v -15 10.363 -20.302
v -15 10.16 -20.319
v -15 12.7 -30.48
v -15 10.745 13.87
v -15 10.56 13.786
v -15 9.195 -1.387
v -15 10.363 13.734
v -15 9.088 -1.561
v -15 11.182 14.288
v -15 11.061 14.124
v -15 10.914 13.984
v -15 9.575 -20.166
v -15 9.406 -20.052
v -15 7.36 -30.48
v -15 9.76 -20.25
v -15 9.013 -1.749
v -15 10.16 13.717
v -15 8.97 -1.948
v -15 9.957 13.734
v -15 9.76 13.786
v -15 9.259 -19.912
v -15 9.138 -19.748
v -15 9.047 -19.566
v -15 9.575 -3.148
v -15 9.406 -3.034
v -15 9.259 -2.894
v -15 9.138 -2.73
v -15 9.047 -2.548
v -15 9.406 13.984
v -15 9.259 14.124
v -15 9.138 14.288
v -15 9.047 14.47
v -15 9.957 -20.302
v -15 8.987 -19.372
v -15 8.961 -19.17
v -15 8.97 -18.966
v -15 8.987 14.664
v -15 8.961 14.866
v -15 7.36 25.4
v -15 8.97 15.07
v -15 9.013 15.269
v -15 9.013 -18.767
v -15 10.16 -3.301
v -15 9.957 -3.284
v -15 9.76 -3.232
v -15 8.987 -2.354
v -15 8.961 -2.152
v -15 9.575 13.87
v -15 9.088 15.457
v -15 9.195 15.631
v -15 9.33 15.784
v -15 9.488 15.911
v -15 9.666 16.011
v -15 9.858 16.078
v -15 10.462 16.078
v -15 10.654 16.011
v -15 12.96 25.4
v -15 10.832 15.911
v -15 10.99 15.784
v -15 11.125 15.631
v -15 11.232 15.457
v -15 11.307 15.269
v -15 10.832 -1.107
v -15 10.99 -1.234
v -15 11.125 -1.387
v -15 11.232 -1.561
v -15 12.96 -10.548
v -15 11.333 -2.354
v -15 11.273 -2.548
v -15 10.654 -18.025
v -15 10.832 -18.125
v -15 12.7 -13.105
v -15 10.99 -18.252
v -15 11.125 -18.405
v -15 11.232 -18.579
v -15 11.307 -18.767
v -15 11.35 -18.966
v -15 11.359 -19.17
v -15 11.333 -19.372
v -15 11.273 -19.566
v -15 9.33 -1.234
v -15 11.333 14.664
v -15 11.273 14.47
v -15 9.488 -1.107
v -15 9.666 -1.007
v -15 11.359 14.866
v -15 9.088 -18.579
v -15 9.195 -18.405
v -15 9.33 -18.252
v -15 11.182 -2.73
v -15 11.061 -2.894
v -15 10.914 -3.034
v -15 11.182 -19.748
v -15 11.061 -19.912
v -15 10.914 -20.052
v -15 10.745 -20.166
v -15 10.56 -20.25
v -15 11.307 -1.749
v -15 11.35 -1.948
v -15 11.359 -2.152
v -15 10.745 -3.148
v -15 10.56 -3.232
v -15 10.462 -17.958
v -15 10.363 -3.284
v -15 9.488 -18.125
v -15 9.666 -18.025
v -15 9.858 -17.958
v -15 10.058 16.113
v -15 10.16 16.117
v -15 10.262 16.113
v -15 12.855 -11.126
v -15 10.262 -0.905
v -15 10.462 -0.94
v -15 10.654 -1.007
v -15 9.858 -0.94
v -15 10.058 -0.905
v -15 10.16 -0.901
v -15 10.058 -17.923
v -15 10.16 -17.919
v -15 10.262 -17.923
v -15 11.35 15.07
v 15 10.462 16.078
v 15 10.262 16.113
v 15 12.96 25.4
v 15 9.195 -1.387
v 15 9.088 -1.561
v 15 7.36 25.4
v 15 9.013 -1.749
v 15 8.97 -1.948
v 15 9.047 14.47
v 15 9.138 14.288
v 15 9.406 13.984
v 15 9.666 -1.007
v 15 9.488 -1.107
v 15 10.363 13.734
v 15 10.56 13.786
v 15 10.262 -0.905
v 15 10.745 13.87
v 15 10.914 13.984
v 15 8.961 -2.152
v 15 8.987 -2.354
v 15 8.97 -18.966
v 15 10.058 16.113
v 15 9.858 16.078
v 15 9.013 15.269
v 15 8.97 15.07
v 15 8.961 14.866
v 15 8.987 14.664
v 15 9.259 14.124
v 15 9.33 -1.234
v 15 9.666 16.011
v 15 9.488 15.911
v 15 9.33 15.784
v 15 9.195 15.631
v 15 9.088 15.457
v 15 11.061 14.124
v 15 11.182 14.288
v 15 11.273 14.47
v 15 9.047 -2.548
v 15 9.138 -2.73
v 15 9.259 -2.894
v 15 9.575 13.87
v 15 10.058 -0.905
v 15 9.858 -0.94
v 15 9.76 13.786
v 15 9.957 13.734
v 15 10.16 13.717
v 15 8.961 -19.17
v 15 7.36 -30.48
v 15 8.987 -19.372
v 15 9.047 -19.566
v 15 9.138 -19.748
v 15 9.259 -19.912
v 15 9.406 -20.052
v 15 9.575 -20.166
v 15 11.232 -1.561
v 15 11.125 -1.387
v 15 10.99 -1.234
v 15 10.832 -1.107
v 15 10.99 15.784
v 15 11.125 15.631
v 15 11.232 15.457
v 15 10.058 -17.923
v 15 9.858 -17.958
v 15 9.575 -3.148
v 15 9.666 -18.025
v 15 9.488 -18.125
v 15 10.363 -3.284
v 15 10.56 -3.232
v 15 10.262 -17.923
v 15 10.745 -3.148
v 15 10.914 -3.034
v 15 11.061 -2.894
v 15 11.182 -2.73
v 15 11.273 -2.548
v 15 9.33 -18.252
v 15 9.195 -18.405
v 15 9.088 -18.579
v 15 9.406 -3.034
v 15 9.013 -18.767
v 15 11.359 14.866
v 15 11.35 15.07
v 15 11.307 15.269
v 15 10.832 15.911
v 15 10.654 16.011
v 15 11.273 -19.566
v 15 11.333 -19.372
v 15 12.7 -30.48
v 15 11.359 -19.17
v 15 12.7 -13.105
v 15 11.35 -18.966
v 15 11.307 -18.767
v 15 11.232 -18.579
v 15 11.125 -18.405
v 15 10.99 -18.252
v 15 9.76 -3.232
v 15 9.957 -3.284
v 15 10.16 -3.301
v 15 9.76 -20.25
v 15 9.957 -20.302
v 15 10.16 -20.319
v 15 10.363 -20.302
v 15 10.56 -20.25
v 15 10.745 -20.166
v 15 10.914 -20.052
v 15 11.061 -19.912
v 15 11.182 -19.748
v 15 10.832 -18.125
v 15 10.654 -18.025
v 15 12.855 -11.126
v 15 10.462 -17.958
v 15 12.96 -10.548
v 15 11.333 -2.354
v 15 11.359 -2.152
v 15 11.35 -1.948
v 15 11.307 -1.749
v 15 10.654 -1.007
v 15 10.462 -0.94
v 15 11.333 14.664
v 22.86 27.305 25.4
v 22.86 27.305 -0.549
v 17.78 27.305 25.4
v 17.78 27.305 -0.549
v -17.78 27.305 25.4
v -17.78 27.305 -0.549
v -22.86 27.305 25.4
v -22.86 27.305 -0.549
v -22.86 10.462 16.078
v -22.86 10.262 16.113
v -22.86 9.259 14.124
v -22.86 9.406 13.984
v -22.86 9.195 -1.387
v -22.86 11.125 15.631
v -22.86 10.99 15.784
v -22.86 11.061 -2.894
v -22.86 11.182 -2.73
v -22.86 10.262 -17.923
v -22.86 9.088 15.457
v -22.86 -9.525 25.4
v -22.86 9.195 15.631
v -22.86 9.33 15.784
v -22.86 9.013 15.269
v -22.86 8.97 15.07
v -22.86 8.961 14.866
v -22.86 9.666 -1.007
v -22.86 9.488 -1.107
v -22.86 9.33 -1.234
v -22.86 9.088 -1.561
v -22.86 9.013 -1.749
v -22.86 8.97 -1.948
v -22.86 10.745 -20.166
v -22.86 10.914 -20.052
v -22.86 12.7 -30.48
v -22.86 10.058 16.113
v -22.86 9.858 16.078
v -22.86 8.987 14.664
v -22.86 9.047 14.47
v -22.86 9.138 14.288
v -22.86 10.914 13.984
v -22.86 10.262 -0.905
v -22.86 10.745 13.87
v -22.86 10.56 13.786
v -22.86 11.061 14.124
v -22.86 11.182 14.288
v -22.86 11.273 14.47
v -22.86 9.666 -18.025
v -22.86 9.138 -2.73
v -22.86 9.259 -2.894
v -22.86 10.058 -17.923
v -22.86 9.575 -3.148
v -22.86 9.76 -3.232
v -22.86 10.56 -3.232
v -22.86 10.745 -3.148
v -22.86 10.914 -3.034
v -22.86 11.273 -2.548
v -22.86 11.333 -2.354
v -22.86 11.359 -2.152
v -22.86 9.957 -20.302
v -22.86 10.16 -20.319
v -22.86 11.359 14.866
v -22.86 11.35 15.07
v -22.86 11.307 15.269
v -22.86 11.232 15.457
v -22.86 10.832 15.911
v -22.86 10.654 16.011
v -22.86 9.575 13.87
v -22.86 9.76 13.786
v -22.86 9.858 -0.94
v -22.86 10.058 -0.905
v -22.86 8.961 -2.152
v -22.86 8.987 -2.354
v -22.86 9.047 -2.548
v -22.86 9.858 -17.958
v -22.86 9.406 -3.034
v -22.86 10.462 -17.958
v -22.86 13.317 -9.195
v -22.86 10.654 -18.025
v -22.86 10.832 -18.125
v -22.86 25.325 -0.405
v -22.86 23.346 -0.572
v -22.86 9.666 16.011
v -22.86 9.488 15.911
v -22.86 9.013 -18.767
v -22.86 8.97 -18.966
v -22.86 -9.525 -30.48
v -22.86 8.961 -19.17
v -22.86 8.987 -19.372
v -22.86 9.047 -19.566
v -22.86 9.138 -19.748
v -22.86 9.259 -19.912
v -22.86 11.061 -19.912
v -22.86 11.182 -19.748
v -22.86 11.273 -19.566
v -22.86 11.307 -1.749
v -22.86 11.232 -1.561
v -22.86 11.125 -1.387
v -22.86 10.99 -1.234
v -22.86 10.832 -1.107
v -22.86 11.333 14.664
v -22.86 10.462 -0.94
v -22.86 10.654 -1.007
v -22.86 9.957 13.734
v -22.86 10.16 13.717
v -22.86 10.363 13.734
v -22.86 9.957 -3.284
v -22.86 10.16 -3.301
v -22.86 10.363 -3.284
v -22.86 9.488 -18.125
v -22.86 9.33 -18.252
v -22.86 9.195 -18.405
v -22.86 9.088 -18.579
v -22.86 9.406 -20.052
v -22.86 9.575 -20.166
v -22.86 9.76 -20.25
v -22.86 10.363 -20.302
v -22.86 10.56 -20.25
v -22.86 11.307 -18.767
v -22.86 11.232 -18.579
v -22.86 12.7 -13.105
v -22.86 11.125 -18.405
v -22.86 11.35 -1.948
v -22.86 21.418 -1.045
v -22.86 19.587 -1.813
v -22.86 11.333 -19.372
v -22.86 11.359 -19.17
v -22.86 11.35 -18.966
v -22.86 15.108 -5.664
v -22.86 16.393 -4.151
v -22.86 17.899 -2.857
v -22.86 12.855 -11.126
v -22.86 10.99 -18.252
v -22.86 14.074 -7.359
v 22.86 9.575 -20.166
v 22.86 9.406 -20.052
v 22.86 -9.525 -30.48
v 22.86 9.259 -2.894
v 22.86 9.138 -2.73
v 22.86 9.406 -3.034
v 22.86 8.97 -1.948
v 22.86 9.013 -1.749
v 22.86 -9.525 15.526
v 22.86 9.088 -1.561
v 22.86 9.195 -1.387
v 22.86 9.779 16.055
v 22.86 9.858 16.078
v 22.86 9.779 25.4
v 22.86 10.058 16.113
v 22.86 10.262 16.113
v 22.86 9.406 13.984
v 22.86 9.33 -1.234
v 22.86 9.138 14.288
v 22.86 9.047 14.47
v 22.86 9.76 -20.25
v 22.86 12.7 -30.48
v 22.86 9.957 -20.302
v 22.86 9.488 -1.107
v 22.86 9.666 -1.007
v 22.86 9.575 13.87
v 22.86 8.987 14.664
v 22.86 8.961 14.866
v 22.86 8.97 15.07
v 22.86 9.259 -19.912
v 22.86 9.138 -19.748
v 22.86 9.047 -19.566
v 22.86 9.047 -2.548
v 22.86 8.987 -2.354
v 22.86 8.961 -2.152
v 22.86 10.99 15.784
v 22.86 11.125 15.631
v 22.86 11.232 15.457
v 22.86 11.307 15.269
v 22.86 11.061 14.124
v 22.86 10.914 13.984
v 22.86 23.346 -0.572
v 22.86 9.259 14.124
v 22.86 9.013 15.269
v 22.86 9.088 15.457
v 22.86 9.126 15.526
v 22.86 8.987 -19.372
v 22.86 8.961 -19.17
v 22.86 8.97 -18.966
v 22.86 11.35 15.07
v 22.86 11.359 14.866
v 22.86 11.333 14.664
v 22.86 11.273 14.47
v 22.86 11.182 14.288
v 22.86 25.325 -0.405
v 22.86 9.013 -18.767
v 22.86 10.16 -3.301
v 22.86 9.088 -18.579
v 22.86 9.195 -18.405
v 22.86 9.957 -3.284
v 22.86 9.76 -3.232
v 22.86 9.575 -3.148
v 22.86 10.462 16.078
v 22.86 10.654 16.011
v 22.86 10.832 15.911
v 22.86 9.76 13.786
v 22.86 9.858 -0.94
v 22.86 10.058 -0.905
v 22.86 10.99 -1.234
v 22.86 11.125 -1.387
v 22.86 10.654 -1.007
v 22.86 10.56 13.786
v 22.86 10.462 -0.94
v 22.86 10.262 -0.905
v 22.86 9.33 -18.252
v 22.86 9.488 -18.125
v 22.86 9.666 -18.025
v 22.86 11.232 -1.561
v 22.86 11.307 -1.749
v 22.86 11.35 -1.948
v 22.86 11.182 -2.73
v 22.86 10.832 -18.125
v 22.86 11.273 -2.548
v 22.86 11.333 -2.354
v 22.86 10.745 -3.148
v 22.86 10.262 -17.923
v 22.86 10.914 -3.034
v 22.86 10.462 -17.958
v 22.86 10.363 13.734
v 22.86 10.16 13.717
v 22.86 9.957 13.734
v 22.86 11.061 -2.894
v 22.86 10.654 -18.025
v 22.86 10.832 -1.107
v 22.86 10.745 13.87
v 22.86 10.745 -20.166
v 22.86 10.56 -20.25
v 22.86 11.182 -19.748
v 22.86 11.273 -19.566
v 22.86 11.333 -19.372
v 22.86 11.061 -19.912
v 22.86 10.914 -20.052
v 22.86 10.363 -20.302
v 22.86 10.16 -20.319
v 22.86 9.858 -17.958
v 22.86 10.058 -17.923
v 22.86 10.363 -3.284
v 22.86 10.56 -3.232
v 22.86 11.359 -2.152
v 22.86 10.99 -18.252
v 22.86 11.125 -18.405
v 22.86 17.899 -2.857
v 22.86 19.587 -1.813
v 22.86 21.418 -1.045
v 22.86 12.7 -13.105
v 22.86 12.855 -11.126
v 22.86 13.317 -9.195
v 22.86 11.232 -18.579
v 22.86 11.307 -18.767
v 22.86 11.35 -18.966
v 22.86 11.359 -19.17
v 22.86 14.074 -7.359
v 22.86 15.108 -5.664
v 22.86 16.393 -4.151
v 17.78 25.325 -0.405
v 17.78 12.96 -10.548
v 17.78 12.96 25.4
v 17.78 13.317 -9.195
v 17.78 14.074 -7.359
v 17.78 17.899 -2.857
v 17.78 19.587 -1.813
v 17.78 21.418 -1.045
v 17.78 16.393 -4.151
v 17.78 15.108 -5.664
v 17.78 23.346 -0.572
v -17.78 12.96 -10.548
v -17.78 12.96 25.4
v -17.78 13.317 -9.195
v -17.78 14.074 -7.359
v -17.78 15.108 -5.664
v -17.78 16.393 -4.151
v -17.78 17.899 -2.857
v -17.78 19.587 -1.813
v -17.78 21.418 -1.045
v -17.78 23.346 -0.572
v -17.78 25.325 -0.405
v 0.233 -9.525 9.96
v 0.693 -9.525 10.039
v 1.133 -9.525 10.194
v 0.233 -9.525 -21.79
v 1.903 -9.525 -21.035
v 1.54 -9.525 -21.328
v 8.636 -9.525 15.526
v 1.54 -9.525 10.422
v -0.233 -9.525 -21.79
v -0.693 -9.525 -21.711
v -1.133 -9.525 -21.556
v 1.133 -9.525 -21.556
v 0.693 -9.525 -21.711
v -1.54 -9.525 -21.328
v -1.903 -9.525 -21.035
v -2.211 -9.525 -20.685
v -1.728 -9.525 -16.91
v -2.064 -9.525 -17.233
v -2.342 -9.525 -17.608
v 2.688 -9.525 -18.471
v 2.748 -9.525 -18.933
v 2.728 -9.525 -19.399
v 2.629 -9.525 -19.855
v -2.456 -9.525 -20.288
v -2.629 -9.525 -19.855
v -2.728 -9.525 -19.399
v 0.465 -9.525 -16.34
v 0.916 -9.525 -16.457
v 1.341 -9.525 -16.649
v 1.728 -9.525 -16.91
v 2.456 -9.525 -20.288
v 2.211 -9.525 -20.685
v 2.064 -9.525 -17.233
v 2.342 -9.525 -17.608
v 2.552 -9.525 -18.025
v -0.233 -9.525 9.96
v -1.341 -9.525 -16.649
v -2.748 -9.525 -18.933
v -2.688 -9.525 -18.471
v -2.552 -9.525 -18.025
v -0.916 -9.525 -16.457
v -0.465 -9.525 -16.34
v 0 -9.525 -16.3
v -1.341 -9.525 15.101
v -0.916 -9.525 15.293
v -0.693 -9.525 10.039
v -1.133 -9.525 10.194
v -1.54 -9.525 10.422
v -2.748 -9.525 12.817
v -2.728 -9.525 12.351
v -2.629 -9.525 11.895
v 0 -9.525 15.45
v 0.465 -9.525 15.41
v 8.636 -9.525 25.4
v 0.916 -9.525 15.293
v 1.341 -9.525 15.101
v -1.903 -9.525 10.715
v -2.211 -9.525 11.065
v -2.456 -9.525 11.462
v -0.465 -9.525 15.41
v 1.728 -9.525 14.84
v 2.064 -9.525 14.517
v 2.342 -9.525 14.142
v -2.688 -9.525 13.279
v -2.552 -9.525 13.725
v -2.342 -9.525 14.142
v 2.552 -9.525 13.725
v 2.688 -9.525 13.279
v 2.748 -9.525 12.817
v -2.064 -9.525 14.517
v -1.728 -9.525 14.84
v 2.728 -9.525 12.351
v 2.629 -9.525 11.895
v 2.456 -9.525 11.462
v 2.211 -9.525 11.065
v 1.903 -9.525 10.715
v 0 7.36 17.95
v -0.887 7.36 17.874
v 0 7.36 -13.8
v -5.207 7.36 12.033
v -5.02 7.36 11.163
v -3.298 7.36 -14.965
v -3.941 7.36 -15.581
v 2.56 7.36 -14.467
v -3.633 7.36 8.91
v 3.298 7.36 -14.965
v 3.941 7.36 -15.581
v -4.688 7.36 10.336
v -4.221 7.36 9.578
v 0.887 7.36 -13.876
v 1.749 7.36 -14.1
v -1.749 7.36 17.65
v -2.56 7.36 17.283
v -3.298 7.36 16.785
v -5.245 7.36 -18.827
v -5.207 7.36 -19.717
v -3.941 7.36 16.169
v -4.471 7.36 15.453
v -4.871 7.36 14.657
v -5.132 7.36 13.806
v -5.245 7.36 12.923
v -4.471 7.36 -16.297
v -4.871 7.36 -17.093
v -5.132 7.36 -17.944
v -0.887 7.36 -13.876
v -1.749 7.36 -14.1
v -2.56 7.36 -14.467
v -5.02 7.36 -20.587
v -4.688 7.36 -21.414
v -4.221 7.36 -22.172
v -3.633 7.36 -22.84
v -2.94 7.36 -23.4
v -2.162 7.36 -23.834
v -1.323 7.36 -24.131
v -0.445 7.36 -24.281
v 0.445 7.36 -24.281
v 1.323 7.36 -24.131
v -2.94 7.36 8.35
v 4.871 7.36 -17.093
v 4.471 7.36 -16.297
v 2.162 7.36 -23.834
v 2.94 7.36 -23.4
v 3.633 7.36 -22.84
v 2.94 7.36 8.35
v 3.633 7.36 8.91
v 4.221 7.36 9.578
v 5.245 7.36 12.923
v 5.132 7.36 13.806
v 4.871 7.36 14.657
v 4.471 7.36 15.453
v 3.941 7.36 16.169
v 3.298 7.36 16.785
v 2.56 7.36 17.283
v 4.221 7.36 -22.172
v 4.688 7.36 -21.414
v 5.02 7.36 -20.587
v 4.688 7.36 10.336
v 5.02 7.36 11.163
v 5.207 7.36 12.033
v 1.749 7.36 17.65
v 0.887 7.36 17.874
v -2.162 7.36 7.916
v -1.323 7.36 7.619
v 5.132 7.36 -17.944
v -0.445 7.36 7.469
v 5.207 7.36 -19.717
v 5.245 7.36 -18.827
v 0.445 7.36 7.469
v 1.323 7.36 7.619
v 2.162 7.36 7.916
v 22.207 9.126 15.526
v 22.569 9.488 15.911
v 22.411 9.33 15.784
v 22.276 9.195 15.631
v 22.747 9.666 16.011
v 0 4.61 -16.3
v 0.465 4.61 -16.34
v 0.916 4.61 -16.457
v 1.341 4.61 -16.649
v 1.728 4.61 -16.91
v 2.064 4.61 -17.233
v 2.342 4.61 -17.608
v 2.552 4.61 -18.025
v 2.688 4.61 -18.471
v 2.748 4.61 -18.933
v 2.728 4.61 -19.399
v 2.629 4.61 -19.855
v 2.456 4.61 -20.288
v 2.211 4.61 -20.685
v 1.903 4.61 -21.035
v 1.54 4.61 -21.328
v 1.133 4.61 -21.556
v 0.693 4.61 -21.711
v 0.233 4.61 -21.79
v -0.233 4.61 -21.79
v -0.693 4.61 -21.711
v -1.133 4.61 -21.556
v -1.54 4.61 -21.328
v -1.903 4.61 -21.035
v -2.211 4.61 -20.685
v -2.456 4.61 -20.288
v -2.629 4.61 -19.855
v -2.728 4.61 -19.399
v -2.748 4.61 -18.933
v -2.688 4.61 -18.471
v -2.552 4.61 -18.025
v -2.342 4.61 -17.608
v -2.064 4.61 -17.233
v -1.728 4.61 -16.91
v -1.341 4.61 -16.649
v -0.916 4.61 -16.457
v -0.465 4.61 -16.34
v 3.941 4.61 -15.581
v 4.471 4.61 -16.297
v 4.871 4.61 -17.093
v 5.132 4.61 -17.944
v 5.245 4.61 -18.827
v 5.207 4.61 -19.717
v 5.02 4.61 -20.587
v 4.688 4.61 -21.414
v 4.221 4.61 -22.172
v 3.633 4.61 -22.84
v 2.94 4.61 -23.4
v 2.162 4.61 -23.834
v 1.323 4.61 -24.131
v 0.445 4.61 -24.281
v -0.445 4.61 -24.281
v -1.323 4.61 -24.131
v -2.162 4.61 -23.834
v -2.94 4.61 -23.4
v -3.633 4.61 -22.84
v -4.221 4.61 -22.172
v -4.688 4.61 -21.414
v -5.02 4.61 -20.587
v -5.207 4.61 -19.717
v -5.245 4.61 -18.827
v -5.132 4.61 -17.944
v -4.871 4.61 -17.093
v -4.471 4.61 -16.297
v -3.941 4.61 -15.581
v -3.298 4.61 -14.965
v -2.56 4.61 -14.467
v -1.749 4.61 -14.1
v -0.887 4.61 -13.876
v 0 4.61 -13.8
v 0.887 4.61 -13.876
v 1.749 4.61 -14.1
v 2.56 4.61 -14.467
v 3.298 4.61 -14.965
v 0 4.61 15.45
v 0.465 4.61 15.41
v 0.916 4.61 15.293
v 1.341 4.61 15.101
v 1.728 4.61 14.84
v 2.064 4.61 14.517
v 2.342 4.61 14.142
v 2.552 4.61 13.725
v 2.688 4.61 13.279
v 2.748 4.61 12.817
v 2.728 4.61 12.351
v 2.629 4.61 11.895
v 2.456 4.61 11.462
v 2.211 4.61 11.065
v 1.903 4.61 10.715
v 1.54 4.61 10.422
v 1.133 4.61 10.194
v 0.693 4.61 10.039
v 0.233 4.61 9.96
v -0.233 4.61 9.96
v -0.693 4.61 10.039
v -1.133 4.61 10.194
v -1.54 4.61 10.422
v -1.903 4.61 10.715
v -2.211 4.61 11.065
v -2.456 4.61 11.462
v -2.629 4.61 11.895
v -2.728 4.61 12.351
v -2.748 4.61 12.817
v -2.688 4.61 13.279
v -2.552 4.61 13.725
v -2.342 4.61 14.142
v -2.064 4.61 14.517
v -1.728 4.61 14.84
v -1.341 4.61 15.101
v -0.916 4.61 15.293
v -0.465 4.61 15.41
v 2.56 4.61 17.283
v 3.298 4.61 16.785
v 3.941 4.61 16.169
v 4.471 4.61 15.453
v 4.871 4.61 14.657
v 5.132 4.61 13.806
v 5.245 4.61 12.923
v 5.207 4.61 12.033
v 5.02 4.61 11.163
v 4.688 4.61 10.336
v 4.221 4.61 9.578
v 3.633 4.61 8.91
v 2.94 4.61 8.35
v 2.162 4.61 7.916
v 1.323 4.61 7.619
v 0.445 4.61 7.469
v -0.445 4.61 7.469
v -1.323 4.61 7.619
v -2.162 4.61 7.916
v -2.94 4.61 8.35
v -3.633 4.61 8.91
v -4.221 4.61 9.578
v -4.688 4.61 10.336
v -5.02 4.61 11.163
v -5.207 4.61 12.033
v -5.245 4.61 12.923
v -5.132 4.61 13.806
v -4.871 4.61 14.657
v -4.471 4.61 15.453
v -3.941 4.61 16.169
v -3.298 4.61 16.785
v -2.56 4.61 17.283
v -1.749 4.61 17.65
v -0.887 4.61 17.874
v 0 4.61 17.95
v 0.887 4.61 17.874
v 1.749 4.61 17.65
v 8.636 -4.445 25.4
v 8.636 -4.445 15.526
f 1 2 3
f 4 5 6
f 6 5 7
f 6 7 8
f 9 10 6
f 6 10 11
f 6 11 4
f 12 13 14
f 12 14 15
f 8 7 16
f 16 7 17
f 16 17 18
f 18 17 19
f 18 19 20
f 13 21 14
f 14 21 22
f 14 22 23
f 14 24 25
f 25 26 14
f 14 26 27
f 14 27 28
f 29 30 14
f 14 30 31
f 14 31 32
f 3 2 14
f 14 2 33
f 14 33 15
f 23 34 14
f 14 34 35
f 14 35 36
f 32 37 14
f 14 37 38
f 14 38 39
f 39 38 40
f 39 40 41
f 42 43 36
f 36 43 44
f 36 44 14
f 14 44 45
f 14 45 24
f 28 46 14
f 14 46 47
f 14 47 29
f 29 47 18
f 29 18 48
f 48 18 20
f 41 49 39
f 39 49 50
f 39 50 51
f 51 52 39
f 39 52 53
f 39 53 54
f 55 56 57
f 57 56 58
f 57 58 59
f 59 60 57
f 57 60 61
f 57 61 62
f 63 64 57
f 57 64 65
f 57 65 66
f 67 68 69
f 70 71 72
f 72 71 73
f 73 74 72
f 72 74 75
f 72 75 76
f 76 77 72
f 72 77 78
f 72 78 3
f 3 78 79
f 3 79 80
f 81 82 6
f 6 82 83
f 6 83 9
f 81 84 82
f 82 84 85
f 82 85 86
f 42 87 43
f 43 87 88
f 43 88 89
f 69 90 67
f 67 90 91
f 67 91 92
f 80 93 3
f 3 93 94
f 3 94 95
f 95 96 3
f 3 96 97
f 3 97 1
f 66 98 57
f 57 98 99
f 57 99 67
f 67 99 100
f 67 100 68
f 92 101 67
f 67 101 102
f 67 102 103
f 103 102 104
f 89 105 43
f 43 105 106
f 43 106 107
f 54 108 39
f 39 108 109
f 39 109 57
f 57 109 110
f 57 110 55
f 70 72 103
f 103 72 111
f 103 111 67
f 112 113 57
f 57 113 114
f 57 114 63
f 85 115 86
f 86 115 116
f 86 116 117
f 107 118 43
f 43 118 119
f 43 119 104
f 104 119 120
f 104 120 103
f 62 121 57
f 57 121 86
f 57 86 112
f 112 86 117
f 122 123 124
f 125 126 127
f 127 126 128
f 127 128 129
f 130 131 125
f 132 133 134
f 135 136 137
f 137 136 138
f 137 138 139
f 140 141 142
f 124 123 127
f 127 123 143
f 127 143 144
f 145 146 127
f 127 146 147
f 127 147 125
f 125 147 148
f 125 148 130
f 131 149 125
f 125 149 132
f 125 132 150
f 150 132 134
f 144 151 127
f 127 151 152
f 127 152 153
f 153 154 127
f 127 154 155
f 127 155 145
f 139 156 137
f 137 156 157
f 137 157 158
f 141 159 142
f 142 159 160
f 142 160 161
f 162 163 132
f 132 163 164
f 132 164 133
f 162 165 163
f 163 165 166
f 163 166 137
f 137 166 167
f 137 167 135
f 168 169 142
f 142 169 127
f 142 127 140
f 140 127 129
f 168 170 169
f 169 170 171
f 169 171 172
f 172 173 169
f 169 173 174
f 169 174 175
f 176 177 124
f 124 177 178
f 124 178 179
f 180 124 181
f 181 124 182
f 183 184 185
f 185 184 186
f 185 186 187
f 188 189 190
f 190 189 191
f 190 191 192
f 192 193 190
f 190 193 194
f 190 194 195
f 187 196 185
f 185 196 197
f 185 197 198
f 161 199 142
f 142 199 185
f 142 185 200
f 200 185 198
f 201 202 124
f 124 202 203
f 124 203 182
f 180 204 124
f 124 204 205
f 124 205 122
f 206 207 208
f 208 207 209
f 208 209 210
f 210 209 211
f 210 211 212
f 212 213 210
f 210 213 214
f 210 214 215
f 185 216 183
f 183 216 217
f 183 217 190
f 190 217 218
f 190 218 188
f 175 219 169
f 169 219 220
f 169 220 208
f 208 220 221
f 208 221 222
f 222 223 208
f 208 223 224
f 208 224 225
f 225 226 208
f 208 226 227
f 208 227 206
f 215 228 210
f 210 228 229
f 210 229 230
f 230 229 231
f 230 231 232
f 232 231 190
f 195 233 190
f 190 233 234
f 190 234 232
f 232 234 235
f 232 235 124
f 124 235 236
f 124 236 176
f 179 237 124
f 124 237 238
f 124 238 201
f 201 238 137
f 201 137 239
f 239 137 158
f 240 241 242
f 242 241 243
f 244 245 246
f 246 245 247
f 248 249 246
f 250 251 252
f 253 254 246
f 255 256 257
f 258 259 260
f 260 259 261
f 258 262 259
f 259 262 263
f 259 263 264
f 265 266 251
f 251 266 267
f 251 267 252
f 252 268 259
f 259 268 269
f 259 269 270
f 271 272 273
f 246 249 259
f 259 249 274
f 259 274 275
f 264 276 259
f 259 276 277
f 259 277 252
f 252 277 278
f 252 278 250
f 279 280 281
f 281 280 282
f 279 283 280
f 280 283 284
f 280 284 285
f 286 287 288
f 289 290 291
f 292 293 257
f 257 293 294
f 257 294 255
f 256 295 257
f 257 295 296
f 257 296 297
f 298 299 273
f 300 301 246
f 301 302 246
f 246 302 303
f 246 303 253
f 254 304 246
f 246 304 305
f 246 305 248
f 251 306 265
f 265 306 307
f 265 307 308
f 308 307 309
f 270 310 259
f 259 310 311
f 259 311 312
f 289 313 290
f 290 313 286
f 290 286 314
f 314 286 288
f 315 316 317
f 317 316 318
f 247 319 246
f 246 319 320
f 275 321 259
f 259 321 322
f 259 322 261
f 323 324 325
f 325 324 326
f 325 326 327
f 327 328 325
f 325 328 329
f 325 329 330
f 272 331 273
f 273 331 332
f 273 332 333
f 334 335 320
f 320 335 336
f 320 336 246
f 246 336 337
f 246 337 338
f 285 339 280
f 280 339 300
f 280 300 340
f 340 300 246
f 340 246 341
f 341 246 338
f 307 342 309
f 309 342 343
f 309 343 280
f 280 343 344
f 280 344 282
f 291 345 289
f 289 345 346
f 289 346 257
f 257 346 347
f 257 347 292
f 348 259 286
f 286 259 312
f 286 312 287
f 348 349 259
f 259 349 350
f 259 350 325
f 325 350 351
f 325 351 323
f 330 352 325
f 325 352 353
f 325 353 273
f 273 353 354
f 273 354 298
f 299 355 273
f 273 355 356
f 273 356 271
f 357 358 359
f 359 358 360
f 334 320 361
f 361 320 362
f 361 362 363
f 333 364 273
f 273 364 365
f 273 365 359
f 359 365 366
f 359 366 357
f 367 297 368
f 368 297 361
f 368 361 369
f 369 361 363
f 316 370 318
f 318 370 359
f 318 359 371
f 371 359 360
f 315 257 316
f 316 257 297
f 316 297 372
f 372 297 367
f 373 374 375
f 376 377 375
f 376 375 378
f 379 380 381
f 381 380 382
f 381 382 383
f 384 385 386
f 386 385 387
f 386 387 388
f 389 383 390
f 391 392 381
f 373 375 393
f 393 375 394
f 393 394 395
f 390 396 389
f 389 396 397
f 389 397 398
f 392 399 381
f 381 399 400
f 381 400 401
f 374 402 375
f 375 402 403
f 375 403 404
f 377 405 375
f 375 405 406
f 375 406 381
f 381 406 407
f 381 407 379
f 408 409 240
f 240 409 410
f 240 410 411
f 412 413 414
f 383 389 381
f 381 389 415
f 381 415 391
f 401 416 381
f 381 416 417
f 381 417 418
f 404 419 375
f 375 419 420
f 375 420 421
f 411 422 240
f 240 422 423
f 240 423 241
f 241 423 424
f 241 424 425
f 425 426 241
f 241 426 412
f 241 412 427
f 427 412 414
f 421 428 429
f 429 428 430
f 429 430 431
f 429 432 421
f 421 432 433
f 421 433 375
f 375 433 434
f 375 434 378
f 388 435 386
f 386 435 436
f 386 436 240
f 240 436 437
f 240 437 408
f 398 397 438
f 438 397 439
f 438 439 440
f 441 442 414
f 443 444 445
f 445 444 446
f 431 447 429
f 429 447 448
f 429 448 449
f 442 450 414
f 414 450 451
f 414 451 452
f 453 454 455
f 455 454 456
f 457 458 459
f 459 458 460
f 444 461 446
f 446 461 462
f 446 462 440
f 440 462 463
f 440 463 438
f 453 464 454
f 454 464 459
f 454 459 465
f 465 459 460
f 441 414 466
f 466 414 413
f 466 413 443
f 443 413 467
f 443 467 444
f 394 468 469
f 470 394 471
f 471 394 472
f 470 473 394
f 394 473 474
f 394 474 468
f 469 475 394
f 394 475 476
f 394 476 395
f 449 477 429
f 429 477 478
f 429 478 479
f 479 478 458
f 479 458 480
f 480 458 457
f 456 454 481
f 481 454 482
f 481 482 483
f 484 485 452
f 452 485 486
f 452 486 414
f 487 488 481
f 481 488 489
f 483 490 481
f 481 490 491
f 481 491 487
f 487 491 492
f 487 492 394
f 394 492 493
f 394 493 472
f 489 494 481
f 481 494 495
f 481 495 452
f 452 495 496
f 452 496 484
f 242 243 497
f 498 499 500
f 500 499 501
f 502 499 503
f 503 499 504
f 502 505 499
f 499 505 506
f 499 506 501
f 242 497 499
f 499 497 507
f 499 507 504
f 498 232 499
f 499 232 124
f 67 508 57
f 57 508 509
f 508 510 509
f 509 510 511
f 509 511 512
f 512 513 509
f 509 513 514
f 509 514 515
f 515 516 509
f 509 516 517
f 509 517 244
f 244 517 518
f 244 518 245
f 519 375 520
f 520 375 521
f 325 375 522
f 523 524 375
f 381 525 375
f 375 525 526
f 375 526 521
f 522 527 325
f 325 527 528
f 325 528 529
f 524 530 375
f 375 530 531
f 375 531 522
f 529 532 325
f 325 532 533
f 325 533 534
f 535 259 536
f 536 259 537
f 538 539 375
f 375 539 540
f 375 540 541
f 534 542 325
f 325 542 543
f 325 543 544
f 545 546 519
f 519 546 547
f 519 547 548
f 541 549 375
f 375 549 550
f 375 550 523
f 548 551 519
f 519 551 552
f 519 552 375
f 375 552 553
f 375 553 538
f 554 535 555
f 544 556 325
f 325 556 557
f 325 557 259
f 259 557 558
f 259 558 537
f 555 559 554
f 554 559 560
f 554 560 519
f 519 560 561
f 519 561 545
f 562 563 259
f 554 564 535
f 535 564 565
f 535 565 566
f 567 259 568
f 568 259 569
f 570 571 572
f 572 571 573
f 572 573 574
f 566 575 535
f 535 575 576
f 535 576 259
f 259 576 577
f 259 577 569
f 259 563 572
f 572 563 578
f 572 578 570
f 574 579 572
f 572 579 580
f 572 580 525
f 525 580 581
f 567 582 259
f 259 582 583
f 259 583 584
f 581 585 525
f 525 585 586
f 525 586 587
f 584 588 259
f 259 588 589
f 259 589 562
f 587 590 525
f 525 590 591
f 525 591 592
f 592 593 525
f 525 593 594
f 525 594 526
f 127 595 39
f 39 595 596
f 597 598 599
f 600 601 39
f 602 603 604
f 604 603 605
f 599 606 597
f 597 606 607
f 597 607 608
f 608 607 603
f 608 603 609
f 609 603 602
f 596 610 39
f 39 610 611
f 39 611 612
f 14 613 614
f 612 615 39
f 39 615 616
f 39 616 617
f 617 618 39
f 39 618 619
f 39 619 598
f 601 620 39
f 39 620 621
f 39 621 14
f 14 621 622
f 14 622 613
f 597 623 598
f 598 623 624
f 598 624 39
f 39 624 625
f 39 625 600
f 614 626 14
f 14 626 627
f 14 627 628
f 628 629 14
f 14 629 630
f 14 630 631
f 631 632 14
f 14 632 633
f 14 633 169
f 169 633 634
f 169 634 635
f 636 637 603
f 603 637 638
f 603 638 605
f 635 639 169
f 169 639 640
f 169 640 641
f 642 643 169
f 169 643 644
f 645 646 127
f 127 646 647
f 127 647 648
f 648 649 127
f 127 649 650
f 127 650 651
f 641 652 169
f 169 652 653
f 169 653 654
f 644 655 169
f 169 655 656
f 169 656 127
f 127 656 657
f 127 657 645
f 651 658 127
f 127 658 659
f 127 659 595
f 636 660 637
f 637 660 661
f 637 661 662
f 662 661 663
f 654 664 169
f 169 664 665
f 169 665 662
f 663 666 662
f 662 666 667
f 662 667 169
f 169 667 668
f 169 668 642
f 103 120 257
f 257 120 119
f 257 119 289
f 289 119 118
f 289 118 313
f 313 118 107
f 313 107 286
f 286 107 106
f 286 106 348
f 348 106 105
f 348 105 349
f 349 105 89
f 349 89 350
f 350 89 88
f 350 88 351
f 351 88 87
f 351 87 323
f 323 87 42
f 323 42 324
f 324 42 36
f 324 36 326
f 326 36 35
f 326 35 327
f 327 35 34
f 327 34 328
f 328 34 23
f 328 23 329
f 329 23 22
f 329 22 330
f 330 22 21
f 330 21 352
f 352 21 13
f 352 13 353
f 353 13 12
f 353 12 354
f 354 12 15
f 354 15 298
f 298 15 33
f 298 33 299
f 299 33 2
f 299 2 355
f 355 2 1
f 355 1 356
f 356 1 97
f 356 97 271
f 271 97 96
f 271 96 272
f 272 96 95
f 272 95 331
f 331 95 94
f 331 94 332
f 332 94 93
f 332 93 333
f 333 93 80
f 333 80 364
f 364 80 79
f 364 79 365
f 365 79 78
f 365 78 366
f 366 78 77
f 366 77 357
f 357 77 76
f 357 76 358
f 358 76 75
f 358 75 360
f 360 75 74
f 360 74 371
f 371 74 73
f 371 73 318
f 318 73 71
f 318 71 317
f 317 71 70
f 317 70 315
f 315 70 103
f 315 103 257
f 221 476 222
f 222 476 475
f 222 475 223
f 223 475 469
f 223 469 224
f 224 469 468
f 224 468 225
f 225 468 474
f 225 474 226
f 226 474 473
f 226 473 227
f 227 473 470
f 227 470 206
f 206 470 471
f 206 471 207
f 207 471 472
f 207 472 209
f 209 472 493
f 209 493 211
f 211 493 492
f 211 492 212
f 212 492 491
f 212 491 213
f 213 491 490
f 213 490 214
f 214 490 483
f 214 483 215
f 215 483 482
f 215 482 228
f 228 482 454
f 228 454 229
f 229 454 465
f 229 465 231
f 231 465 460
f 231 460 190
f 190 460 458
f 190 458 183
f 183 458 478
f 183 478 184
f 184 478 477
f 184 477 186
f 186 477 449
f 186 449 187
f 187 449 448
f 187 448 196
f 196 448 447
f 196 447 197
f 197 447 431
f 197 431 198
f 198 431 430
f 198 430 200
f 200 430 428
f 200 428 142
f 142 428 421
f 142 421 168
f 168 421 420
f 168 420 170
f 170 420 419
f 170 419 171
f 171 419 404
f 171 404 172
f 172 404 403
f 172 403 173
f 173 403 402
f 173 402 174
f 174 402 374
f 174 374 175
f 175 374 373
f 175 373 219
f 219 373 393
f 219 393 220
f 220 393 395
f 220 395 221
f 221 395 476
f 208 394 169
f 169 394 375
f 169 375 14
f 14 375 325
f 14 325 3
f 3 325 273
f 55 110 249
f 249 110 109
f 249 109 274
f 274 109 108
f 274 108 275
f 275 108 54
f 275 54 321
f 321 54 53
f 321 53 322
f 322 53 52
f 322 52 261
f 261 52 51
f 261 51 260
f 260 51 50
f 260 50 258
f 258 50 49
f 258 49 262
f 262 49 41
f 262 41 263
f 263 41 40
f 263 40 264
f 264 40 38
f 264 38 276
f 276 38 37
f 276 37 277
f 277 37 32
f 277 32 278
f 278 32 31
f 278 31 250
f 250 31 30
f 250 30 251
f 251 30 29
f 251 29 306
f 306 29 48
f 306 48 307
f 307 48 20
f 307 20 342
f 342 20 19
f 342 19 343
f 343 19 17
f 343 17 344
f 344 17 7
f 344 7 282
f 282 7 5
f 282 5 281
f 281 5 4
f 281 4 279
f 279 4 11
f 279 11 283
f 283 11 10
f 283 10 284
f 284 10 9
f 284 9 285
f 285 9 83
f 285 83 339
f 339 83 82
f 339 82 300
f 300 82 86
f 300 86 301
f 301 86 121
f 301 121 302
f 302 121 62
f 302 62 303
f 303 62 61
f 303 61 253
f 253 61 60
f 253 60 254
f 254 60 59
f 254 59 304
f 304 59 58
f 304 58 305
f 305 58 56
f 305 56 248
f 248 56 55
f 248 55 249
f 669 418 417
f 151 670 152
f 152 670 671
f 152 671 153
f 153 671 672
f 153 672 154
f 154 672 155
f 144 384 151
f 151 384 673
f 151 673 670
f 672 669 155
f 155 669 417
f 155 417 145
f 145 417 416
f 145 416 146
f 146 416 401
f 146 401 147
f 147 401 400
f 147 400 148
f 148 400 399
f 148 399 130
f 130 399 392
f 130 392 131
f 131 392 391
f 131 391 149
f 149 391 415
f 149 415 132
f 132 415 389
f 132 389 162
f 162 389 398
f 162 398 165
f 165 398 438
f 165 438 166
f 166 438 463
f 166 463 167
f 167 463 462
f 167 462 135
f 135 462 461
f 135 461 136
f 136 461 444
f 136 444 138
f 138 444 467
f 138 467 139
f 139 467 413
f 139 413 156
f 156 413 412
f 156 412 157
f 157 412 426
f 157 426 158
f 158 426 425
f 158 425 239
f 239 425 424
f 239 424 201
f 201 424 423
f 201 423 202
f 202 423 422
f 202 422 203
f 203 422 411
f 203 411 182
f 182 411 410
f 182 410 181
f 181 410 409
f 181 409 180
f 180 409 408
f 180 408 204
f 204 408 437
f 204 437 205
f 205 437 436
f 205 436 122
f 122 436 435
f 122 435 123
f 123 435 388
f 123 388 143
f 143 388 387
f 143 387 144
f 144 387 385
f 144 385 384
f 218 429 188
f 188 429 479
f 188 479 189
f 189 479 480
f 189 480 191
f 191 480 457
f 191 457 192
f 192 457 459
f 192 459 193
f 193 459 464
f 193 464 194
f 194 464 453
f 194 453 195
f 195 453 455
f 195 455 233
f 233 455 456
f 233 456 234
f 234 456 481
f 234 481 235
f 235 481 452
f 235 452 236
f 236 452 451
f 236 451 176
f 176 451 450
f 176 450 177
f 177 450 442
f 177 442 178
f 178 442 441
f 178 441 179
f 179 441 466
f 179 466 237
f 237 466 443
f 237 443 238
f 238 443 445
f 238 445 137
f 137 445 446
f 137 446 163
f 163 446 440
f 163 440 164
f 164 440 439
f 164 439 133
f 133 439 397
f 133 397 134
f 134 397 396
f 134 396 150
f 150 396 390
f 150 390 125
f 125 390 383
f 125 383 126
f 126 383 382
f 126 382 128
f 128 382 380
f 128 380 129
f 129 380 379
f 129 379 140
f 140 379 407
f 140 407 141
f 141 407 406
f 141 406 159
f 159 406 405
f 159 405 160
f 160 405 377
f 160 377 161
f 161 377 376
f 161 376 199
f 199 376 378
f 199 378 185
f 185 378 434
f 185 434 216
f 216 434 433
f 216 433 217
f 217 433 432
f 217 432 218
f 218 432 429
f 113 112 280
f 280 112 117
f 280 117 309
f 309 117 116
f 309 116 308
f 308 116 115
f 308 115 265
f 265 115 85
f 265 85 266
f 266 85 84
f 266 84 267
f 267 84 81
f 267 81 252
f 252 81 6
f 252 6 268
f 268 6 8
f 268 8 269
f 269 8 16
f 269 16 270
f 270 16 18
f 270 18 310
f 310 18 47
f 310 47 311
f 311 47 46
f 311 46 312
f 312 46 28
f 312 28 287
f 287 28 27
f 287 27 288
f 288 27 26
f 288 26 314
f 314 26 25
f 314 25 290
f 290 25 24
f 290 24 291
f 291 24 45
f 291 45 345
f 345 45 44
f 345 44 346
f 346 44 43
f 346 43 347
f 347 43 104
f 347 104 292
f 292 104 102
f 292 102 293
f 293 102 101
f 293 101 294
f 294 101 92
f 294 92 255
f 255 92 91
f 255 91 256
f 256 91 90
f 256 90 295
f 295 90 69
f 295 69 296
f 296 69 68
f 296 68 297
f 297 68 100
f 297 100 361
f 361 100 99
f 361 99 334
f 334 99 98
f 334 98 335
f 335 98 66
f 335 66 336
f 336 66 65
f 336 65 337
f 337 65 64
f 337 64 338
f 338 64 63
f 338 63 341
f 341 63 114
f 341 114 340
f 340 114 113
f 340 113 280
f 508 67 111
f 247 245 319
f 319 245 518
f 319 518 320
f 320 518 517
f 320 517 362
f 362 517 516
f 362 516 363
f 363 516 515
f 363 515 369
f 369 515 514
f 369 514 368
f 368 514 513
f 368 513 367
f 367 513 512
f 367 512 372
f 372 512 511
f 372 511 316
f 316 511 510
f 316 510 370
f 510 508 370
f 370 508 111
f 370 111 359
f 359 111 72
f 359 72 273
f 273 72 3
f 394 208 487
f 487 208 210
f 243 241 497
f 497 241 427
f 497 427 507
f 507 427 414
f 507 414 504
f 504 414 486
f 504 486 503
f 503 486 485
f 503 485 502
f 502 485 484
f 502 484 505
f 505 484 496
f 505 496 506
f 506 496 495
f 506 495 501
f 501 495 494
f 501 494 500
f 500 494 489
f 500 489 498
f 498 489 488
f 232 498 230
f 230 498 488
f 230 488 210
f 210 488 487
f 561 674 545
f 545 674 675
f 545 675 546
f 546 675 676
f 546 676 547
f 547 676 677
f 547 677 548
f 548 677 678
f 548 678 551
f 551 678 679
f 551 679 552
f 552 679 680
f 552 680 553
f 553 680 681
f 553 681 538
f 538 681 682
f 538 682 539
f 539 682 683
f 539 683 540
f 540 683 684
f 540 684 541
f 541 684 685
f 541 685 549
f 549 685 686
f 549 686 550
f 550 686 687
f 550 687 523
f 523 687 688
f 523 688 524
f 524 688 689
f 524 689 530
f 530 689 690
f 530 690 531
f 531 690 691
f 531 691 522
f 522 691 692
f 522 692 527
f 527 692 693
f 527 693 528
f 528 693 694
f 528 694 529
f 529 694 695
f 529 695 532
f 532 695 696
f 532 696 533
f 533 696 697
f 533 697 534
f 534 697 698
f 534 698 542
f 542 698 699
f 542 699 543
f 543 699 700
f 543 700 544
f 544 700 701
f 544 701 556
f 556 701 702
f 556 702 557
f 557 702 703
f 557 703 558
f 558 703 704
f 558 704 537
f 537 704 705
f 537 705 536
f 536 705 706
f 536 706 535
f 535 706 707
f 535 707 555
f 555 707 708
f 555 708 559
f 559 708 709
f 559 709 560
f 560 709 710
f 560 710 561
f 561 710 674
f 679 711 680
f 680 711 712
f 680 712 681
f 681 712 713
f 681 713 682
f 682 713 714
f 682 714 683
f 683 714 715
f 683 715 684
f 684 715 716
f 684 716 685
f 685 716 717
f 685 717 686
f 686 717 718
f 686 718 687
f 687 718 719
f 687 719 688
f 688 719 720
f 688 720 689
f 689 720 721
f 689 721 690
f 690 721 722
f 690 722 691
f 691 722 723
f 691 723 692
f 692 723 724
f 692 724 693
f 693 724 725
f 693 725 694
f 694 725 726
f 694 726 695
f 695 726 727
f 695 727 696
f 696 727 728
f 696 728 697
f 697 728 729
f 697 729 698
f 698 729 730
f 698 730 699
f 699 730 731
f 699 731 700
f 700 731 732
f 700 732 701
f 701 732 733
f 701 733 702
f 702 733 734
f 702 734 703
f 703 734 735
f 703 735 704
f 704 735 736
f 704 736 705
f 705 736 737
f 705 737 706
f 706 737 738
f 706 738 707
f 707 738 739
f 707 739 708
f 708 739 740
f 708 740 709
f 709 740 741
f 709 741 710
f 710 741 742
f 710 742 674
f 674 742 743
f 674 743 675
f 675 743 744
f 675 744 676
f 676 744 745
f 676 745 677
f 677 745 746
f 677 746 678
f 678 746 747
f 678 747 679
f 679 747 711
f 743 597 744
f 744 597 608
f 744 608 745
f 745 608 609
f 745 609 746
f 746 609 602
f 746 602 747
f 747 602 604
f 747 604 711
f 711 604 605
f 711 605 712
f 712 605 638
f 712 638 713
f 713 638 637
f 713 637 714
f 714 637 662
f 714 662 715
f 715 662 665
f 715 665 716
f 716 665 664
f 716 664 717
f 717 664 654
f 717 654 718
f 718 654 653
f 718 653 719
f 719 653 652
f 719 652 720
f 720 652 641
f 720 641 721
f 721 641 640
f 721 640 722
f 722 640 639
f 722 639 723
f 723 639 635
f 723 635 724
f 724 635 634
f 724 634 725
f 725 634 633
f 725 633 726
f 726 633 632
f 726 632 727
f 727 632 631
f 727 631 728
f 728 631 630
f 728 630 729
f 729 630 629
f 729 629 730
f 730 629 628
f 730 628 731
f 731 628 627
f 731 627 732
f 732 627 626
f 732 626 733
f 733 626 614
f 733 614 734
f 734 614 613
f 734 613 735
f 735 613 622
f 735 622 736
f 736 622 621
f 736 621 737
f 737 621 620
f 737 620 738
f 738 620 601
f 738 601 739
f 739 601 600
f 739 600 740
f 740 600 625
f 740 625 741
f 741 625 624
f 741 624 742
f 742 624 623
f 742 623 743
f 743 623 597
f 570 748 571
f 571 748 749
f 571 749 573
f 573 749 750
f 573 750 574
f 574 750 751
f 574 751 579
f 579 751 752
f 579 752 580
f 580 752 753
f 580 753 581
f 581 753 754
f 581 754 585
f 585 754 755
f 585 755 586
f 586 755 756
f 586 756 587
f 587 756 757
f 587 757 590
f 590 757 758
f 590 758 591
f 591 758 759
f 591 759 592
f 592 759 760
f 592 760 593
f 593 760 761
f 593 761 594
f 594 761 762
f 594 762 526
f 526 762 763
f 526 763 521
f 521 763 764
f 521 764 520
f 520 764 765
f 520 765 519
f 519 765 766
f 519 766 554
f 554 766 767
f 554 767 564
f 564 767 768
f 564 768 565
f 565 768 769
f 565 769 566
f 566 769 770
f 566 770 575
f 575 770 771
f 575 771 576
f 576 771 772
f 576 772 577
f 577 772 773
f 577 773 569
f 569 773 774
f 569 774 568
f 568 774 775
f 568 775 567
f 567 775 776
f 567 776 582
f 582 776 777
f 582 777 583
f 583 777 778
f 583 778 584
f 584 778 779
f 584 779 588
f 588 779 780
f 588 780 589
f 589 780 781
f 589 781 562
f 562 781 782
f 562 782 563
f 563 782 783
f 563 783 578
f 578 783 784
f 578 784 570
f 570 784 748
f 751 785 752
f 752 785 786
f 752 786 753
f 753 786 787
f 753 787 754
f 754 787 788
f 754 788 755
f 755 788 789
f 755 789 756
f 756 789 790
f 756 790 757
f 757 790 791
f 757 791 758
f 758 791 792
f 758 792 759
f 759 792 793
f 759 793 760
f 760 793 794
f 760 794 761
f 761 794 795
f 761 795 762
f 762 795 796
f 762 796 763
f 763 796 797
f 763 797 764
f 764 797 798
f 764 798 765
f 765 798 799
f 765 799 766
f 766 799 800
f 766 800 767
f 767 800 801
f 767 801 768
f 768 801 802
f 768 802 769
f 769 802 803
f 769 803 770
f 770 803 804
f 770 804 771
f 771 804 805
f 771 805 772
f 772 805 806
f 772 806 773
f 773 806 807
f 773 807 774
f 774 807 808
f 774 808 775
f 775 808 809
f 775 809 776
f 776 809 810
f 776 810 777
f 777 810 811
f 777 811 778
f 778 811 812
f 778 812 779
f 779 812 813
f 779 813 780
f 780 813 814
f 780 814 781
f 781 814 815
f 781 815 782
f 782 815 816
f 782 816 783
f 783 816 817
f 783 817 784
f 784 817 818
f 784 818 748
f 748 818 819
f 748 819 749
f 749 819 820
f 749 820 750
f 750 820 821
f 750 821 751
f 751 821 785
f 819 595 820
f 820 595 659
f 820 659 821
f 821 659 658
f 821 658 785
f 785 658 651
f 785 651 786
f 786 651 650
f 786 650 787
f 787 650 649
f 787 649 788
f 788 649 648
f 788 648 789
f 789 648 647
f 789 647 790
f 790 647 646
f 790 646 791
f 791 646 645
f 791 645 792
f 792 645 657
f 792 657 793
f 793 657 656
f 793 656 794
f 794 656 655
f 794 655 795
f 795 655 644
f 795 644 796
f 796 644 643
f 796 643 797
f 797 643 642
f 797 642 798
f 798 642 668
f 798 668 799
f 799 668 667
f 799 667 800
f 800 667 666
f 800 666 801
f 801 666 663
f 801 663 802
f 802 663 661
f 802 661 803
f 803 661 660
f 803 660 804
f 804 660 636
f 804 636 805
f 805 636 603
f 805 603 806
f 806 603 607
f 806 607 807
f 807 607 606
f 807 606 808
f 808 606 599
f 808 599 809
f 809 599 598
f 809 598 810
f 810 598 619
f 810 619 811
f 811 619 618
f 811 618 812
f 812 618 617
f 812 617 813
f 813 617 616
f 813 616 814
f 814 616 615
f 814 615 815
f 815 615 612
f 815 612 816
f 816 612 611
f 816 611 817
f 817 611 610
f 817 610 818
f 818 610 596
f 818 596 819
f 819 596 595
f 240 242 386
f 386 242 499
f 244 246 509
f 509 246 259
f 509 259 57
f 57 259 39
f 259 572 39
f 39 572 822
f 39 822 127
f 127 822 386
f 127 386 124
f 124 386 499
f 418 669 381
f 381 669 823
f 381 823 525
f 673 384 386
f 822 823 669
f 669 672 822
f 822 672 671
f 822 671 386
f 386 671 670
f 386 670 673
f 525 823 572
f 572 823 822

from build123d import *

# Parameters (mm, degrees)
SKETCH1_W                       = 45.72
SKETCH1_H                       = 60.96
BOSS_EXTRUDE1_DEPTH             = 6.35
SKETCH2_W                       = 7.8600046
SKETCH2_H                       = 60.96
BOSS_EXTRUDE2_DEPTH             = 20.955
LPATTERN1_COUNT                 = 3
LPATTERN1_PITCH                 = 17.018
SKETCH1_3_W                     = 45.72
SKETCH1_3_H                     = 60.96
BOSS_EXTRUDE3_DEPTH             = 2.54
CUT_EXTRUDE1_START              = 14.999995
SKETCH11_W                      = 60.96
SKETCH11_H                      = 14.3449802
CUT_EXTRUDE1_DEPTH              = 17.78
CUT_EXTRUDE2_DEPTH              = 62.358877312
SKETCH17_W                      = 45.72
SKETCH17_H                      = 60.96
BOSS_EXTRUDE4_DEPTH             = 6.985
SKETCH19_W                      = 29.9999908
SKETCH19_H                      = 60.96
BOSS_EXTRUDE5_DEPTH             = 1.0100056
CBORE_FOR_M5_SBHCS2_D           = 5.5
CBORE_FOR_M5_SBHCS2_CBORE_D     = 10.5
CBORE_FOR_M5_SBHCS2_CBORE_DEPTH = 2.75
CUT_EXTRUDE3_DEPTH              = 82.222264916
CUT_EXTRUDE3_DEPTH_BACK         = 82.222264916
SKETCH24_W                      = 5.08
SKETCH24_H                      = 45.72
CUT_EXTRUDE4_DEPTH              = 9.874000032


with BuildPart() as part:
    # Sketch1 → Boss-Extrude1 (new body)
    with BuildSketch(Plane(origin=(0, 0, 0), x_dir=(1, 0, 0), z_dir=(0, 1, 0))):
        Rectangle(SKETCH1_W, SKETCH1_H)
    extrude(amount=BOSS_EXTRUDE1_DEPTH)

    # Sketch2 → Boss-Extrude2 (add)
    with BuildSketch(Plane(origin=(0, 6.35, 0), x_dir=(1, 0, 0), z_dir=(0, 1, 0))):
        with Locations((-18.9299977, 0)):
            Rectangle(SKETCH2_W, SKETCH2_H)
        with Locations((18.9299977, 0)):
            Rectangle(SKETCH2_W, SKETCH2_H)
    extrude(amount=BOSS_EXTRUDE2_DEPTH)

    # Sketch7 → M2 Clearance Hole2 (revolve, cut)
    with BuildSketch(Plane(origin=(22.86, 10.16, 14.9171914), x_dir=(0, 0, -1), z_dir=(0, 1, 0))):
        Polygon((0, 0), (0, 46.441032743), (1.2, 45.72), (1.2, 0), align=None)
    m2_clearance_hole2 = revolve(axis=Axis((29.21, 10.16, 14.9171914), (-1, 0, 0)), mode=Mode.SUBTRACT)

    # LPattern1: M2 Clearance Hole2 ×3
    with Locations(*[(0, 0, -i * LPATTERN1_PITCH) for i in range(1, LPATTERN1_COUNT)]):
        add(m2_clearance_hole2, mode=Mode.SUBTRACT)

    # Sketch1<3> → Boss-Extrude3 (add)
    with BuildSketch(Plane(origin=(0, 0, 0), x_dir=(1, 0, 0), z_dir=(0, 1, 0))):
        Rectangle(SKETCH1_3_W, SKETCH1_3_H)
    extrude(amount=-BOSS_EXTRUDE3_DEPTH)

    # Sketch11 → Cut-Extrude1 (cut, symmetric)
    with BuildSketch(Plane.ZY.offset(-14.9999954).offset(CUT_EXTRUDE1_START)):
        with Locations((0, 20.1325099)):
            Rectangle(SKETCH11_W, SKETCH11_H)
    extrude(amount=CUT_EXTRUDE1_DEPTH, both=True, mode=Mode.SUBTRACT)

    # Sketch12 → Cut-Extrude2 (cut, through all)
    with BuildSketch(Plane(origin=(22.86, 0, 0), x_dir=(0, 0, -1), z_dir=(1, 0, 0))):
        with BuildLine():
            Line((13.105000048, 12.7), (30.48, 12.7))
            Line((30.48, 12.7), (30.48, 27.305))
            Line((30.48, 27.305), (25.661312206, 27.305))
            ThreePointArc((25.661312206, 27.305), (3.474748234, 33.679387055), (13.105000048, 12.7))
        make_face()
    extrude(amount=-CUT_EXTRUDE2_DEPTH, mode=Mode.SUBTRACT)

    # Sketch17 → Boss-Extrude4 (add)
    with BuildSketch(Plane.XZ.offset(2.54)):
        Rectangle(SKETCH17_W, SKETCH17_H)
    extrude(amount=BOSS_EXTRUDE4_DEPTH)

    # Sketch19 → Boss-Extrude5 (add)
    with BuildSketch(Plane(origin=(0, 6.35, 0), x_dir=(1, 0, 0), z_dir=(0, 1, 0))):
        Rectangle(SKETCH19_W, SKETCH19_H)
    extrude(amount=BOSS_EXTRUDE5_DEPTH)

    # CBORE for M5 SBHCS2 (through all)
    with Locations(Plane(origin=(0, 7.3600056, 0), x_dir=(1, 0, 0), z_dir=(0, 1, 0))):
        with Locations((0, -12.7), (0, 19.05)):
            CounterBoreHole(CBORE_FOR_M5_SBHCS2_D / 2, CBORE_FOR_M5_SBHCS2_CBORE_D / 2, CBORE_FOR_M5_SBHCS2_CBORE_DEPTH)

    # Sketch24 → Cut-Extrude3 (cut, two sides: drawn at the far end of the back side and taken through both)
    with BuildSketch(Plane(origin=(31.571183672, -12.7, -14.6188086), x_dir=(0, 0, -1), z_dir=(0, 1, 0)).offset(-CUT_EXTRUDE3_DEPTH_BACK)):
        with Locations((-42.5588086, 31.571183672)):
            Rectangle(SKETCH24_W, SKETCH24_H)
    extrude(amount=CUT_EXTRUDE3_DEPTH + CUT_EXTRUDE3_DEPTH_BACK, mode=Mode.SUBTRACT)

    # Sketch25 → Cut-Extrude4 (cut)
    with BuildSketch(Plane.XY.offset(25.4)):
        Polygon((8.636, -9.525), (8.636, -4.445), (22.86, 9.779), (22.86, -9.525), align=None)
    extrude(amount=-CUT_EXTRUDE4_DEPTH, mode=Mode.SUBTRACT)


solid = part.part
